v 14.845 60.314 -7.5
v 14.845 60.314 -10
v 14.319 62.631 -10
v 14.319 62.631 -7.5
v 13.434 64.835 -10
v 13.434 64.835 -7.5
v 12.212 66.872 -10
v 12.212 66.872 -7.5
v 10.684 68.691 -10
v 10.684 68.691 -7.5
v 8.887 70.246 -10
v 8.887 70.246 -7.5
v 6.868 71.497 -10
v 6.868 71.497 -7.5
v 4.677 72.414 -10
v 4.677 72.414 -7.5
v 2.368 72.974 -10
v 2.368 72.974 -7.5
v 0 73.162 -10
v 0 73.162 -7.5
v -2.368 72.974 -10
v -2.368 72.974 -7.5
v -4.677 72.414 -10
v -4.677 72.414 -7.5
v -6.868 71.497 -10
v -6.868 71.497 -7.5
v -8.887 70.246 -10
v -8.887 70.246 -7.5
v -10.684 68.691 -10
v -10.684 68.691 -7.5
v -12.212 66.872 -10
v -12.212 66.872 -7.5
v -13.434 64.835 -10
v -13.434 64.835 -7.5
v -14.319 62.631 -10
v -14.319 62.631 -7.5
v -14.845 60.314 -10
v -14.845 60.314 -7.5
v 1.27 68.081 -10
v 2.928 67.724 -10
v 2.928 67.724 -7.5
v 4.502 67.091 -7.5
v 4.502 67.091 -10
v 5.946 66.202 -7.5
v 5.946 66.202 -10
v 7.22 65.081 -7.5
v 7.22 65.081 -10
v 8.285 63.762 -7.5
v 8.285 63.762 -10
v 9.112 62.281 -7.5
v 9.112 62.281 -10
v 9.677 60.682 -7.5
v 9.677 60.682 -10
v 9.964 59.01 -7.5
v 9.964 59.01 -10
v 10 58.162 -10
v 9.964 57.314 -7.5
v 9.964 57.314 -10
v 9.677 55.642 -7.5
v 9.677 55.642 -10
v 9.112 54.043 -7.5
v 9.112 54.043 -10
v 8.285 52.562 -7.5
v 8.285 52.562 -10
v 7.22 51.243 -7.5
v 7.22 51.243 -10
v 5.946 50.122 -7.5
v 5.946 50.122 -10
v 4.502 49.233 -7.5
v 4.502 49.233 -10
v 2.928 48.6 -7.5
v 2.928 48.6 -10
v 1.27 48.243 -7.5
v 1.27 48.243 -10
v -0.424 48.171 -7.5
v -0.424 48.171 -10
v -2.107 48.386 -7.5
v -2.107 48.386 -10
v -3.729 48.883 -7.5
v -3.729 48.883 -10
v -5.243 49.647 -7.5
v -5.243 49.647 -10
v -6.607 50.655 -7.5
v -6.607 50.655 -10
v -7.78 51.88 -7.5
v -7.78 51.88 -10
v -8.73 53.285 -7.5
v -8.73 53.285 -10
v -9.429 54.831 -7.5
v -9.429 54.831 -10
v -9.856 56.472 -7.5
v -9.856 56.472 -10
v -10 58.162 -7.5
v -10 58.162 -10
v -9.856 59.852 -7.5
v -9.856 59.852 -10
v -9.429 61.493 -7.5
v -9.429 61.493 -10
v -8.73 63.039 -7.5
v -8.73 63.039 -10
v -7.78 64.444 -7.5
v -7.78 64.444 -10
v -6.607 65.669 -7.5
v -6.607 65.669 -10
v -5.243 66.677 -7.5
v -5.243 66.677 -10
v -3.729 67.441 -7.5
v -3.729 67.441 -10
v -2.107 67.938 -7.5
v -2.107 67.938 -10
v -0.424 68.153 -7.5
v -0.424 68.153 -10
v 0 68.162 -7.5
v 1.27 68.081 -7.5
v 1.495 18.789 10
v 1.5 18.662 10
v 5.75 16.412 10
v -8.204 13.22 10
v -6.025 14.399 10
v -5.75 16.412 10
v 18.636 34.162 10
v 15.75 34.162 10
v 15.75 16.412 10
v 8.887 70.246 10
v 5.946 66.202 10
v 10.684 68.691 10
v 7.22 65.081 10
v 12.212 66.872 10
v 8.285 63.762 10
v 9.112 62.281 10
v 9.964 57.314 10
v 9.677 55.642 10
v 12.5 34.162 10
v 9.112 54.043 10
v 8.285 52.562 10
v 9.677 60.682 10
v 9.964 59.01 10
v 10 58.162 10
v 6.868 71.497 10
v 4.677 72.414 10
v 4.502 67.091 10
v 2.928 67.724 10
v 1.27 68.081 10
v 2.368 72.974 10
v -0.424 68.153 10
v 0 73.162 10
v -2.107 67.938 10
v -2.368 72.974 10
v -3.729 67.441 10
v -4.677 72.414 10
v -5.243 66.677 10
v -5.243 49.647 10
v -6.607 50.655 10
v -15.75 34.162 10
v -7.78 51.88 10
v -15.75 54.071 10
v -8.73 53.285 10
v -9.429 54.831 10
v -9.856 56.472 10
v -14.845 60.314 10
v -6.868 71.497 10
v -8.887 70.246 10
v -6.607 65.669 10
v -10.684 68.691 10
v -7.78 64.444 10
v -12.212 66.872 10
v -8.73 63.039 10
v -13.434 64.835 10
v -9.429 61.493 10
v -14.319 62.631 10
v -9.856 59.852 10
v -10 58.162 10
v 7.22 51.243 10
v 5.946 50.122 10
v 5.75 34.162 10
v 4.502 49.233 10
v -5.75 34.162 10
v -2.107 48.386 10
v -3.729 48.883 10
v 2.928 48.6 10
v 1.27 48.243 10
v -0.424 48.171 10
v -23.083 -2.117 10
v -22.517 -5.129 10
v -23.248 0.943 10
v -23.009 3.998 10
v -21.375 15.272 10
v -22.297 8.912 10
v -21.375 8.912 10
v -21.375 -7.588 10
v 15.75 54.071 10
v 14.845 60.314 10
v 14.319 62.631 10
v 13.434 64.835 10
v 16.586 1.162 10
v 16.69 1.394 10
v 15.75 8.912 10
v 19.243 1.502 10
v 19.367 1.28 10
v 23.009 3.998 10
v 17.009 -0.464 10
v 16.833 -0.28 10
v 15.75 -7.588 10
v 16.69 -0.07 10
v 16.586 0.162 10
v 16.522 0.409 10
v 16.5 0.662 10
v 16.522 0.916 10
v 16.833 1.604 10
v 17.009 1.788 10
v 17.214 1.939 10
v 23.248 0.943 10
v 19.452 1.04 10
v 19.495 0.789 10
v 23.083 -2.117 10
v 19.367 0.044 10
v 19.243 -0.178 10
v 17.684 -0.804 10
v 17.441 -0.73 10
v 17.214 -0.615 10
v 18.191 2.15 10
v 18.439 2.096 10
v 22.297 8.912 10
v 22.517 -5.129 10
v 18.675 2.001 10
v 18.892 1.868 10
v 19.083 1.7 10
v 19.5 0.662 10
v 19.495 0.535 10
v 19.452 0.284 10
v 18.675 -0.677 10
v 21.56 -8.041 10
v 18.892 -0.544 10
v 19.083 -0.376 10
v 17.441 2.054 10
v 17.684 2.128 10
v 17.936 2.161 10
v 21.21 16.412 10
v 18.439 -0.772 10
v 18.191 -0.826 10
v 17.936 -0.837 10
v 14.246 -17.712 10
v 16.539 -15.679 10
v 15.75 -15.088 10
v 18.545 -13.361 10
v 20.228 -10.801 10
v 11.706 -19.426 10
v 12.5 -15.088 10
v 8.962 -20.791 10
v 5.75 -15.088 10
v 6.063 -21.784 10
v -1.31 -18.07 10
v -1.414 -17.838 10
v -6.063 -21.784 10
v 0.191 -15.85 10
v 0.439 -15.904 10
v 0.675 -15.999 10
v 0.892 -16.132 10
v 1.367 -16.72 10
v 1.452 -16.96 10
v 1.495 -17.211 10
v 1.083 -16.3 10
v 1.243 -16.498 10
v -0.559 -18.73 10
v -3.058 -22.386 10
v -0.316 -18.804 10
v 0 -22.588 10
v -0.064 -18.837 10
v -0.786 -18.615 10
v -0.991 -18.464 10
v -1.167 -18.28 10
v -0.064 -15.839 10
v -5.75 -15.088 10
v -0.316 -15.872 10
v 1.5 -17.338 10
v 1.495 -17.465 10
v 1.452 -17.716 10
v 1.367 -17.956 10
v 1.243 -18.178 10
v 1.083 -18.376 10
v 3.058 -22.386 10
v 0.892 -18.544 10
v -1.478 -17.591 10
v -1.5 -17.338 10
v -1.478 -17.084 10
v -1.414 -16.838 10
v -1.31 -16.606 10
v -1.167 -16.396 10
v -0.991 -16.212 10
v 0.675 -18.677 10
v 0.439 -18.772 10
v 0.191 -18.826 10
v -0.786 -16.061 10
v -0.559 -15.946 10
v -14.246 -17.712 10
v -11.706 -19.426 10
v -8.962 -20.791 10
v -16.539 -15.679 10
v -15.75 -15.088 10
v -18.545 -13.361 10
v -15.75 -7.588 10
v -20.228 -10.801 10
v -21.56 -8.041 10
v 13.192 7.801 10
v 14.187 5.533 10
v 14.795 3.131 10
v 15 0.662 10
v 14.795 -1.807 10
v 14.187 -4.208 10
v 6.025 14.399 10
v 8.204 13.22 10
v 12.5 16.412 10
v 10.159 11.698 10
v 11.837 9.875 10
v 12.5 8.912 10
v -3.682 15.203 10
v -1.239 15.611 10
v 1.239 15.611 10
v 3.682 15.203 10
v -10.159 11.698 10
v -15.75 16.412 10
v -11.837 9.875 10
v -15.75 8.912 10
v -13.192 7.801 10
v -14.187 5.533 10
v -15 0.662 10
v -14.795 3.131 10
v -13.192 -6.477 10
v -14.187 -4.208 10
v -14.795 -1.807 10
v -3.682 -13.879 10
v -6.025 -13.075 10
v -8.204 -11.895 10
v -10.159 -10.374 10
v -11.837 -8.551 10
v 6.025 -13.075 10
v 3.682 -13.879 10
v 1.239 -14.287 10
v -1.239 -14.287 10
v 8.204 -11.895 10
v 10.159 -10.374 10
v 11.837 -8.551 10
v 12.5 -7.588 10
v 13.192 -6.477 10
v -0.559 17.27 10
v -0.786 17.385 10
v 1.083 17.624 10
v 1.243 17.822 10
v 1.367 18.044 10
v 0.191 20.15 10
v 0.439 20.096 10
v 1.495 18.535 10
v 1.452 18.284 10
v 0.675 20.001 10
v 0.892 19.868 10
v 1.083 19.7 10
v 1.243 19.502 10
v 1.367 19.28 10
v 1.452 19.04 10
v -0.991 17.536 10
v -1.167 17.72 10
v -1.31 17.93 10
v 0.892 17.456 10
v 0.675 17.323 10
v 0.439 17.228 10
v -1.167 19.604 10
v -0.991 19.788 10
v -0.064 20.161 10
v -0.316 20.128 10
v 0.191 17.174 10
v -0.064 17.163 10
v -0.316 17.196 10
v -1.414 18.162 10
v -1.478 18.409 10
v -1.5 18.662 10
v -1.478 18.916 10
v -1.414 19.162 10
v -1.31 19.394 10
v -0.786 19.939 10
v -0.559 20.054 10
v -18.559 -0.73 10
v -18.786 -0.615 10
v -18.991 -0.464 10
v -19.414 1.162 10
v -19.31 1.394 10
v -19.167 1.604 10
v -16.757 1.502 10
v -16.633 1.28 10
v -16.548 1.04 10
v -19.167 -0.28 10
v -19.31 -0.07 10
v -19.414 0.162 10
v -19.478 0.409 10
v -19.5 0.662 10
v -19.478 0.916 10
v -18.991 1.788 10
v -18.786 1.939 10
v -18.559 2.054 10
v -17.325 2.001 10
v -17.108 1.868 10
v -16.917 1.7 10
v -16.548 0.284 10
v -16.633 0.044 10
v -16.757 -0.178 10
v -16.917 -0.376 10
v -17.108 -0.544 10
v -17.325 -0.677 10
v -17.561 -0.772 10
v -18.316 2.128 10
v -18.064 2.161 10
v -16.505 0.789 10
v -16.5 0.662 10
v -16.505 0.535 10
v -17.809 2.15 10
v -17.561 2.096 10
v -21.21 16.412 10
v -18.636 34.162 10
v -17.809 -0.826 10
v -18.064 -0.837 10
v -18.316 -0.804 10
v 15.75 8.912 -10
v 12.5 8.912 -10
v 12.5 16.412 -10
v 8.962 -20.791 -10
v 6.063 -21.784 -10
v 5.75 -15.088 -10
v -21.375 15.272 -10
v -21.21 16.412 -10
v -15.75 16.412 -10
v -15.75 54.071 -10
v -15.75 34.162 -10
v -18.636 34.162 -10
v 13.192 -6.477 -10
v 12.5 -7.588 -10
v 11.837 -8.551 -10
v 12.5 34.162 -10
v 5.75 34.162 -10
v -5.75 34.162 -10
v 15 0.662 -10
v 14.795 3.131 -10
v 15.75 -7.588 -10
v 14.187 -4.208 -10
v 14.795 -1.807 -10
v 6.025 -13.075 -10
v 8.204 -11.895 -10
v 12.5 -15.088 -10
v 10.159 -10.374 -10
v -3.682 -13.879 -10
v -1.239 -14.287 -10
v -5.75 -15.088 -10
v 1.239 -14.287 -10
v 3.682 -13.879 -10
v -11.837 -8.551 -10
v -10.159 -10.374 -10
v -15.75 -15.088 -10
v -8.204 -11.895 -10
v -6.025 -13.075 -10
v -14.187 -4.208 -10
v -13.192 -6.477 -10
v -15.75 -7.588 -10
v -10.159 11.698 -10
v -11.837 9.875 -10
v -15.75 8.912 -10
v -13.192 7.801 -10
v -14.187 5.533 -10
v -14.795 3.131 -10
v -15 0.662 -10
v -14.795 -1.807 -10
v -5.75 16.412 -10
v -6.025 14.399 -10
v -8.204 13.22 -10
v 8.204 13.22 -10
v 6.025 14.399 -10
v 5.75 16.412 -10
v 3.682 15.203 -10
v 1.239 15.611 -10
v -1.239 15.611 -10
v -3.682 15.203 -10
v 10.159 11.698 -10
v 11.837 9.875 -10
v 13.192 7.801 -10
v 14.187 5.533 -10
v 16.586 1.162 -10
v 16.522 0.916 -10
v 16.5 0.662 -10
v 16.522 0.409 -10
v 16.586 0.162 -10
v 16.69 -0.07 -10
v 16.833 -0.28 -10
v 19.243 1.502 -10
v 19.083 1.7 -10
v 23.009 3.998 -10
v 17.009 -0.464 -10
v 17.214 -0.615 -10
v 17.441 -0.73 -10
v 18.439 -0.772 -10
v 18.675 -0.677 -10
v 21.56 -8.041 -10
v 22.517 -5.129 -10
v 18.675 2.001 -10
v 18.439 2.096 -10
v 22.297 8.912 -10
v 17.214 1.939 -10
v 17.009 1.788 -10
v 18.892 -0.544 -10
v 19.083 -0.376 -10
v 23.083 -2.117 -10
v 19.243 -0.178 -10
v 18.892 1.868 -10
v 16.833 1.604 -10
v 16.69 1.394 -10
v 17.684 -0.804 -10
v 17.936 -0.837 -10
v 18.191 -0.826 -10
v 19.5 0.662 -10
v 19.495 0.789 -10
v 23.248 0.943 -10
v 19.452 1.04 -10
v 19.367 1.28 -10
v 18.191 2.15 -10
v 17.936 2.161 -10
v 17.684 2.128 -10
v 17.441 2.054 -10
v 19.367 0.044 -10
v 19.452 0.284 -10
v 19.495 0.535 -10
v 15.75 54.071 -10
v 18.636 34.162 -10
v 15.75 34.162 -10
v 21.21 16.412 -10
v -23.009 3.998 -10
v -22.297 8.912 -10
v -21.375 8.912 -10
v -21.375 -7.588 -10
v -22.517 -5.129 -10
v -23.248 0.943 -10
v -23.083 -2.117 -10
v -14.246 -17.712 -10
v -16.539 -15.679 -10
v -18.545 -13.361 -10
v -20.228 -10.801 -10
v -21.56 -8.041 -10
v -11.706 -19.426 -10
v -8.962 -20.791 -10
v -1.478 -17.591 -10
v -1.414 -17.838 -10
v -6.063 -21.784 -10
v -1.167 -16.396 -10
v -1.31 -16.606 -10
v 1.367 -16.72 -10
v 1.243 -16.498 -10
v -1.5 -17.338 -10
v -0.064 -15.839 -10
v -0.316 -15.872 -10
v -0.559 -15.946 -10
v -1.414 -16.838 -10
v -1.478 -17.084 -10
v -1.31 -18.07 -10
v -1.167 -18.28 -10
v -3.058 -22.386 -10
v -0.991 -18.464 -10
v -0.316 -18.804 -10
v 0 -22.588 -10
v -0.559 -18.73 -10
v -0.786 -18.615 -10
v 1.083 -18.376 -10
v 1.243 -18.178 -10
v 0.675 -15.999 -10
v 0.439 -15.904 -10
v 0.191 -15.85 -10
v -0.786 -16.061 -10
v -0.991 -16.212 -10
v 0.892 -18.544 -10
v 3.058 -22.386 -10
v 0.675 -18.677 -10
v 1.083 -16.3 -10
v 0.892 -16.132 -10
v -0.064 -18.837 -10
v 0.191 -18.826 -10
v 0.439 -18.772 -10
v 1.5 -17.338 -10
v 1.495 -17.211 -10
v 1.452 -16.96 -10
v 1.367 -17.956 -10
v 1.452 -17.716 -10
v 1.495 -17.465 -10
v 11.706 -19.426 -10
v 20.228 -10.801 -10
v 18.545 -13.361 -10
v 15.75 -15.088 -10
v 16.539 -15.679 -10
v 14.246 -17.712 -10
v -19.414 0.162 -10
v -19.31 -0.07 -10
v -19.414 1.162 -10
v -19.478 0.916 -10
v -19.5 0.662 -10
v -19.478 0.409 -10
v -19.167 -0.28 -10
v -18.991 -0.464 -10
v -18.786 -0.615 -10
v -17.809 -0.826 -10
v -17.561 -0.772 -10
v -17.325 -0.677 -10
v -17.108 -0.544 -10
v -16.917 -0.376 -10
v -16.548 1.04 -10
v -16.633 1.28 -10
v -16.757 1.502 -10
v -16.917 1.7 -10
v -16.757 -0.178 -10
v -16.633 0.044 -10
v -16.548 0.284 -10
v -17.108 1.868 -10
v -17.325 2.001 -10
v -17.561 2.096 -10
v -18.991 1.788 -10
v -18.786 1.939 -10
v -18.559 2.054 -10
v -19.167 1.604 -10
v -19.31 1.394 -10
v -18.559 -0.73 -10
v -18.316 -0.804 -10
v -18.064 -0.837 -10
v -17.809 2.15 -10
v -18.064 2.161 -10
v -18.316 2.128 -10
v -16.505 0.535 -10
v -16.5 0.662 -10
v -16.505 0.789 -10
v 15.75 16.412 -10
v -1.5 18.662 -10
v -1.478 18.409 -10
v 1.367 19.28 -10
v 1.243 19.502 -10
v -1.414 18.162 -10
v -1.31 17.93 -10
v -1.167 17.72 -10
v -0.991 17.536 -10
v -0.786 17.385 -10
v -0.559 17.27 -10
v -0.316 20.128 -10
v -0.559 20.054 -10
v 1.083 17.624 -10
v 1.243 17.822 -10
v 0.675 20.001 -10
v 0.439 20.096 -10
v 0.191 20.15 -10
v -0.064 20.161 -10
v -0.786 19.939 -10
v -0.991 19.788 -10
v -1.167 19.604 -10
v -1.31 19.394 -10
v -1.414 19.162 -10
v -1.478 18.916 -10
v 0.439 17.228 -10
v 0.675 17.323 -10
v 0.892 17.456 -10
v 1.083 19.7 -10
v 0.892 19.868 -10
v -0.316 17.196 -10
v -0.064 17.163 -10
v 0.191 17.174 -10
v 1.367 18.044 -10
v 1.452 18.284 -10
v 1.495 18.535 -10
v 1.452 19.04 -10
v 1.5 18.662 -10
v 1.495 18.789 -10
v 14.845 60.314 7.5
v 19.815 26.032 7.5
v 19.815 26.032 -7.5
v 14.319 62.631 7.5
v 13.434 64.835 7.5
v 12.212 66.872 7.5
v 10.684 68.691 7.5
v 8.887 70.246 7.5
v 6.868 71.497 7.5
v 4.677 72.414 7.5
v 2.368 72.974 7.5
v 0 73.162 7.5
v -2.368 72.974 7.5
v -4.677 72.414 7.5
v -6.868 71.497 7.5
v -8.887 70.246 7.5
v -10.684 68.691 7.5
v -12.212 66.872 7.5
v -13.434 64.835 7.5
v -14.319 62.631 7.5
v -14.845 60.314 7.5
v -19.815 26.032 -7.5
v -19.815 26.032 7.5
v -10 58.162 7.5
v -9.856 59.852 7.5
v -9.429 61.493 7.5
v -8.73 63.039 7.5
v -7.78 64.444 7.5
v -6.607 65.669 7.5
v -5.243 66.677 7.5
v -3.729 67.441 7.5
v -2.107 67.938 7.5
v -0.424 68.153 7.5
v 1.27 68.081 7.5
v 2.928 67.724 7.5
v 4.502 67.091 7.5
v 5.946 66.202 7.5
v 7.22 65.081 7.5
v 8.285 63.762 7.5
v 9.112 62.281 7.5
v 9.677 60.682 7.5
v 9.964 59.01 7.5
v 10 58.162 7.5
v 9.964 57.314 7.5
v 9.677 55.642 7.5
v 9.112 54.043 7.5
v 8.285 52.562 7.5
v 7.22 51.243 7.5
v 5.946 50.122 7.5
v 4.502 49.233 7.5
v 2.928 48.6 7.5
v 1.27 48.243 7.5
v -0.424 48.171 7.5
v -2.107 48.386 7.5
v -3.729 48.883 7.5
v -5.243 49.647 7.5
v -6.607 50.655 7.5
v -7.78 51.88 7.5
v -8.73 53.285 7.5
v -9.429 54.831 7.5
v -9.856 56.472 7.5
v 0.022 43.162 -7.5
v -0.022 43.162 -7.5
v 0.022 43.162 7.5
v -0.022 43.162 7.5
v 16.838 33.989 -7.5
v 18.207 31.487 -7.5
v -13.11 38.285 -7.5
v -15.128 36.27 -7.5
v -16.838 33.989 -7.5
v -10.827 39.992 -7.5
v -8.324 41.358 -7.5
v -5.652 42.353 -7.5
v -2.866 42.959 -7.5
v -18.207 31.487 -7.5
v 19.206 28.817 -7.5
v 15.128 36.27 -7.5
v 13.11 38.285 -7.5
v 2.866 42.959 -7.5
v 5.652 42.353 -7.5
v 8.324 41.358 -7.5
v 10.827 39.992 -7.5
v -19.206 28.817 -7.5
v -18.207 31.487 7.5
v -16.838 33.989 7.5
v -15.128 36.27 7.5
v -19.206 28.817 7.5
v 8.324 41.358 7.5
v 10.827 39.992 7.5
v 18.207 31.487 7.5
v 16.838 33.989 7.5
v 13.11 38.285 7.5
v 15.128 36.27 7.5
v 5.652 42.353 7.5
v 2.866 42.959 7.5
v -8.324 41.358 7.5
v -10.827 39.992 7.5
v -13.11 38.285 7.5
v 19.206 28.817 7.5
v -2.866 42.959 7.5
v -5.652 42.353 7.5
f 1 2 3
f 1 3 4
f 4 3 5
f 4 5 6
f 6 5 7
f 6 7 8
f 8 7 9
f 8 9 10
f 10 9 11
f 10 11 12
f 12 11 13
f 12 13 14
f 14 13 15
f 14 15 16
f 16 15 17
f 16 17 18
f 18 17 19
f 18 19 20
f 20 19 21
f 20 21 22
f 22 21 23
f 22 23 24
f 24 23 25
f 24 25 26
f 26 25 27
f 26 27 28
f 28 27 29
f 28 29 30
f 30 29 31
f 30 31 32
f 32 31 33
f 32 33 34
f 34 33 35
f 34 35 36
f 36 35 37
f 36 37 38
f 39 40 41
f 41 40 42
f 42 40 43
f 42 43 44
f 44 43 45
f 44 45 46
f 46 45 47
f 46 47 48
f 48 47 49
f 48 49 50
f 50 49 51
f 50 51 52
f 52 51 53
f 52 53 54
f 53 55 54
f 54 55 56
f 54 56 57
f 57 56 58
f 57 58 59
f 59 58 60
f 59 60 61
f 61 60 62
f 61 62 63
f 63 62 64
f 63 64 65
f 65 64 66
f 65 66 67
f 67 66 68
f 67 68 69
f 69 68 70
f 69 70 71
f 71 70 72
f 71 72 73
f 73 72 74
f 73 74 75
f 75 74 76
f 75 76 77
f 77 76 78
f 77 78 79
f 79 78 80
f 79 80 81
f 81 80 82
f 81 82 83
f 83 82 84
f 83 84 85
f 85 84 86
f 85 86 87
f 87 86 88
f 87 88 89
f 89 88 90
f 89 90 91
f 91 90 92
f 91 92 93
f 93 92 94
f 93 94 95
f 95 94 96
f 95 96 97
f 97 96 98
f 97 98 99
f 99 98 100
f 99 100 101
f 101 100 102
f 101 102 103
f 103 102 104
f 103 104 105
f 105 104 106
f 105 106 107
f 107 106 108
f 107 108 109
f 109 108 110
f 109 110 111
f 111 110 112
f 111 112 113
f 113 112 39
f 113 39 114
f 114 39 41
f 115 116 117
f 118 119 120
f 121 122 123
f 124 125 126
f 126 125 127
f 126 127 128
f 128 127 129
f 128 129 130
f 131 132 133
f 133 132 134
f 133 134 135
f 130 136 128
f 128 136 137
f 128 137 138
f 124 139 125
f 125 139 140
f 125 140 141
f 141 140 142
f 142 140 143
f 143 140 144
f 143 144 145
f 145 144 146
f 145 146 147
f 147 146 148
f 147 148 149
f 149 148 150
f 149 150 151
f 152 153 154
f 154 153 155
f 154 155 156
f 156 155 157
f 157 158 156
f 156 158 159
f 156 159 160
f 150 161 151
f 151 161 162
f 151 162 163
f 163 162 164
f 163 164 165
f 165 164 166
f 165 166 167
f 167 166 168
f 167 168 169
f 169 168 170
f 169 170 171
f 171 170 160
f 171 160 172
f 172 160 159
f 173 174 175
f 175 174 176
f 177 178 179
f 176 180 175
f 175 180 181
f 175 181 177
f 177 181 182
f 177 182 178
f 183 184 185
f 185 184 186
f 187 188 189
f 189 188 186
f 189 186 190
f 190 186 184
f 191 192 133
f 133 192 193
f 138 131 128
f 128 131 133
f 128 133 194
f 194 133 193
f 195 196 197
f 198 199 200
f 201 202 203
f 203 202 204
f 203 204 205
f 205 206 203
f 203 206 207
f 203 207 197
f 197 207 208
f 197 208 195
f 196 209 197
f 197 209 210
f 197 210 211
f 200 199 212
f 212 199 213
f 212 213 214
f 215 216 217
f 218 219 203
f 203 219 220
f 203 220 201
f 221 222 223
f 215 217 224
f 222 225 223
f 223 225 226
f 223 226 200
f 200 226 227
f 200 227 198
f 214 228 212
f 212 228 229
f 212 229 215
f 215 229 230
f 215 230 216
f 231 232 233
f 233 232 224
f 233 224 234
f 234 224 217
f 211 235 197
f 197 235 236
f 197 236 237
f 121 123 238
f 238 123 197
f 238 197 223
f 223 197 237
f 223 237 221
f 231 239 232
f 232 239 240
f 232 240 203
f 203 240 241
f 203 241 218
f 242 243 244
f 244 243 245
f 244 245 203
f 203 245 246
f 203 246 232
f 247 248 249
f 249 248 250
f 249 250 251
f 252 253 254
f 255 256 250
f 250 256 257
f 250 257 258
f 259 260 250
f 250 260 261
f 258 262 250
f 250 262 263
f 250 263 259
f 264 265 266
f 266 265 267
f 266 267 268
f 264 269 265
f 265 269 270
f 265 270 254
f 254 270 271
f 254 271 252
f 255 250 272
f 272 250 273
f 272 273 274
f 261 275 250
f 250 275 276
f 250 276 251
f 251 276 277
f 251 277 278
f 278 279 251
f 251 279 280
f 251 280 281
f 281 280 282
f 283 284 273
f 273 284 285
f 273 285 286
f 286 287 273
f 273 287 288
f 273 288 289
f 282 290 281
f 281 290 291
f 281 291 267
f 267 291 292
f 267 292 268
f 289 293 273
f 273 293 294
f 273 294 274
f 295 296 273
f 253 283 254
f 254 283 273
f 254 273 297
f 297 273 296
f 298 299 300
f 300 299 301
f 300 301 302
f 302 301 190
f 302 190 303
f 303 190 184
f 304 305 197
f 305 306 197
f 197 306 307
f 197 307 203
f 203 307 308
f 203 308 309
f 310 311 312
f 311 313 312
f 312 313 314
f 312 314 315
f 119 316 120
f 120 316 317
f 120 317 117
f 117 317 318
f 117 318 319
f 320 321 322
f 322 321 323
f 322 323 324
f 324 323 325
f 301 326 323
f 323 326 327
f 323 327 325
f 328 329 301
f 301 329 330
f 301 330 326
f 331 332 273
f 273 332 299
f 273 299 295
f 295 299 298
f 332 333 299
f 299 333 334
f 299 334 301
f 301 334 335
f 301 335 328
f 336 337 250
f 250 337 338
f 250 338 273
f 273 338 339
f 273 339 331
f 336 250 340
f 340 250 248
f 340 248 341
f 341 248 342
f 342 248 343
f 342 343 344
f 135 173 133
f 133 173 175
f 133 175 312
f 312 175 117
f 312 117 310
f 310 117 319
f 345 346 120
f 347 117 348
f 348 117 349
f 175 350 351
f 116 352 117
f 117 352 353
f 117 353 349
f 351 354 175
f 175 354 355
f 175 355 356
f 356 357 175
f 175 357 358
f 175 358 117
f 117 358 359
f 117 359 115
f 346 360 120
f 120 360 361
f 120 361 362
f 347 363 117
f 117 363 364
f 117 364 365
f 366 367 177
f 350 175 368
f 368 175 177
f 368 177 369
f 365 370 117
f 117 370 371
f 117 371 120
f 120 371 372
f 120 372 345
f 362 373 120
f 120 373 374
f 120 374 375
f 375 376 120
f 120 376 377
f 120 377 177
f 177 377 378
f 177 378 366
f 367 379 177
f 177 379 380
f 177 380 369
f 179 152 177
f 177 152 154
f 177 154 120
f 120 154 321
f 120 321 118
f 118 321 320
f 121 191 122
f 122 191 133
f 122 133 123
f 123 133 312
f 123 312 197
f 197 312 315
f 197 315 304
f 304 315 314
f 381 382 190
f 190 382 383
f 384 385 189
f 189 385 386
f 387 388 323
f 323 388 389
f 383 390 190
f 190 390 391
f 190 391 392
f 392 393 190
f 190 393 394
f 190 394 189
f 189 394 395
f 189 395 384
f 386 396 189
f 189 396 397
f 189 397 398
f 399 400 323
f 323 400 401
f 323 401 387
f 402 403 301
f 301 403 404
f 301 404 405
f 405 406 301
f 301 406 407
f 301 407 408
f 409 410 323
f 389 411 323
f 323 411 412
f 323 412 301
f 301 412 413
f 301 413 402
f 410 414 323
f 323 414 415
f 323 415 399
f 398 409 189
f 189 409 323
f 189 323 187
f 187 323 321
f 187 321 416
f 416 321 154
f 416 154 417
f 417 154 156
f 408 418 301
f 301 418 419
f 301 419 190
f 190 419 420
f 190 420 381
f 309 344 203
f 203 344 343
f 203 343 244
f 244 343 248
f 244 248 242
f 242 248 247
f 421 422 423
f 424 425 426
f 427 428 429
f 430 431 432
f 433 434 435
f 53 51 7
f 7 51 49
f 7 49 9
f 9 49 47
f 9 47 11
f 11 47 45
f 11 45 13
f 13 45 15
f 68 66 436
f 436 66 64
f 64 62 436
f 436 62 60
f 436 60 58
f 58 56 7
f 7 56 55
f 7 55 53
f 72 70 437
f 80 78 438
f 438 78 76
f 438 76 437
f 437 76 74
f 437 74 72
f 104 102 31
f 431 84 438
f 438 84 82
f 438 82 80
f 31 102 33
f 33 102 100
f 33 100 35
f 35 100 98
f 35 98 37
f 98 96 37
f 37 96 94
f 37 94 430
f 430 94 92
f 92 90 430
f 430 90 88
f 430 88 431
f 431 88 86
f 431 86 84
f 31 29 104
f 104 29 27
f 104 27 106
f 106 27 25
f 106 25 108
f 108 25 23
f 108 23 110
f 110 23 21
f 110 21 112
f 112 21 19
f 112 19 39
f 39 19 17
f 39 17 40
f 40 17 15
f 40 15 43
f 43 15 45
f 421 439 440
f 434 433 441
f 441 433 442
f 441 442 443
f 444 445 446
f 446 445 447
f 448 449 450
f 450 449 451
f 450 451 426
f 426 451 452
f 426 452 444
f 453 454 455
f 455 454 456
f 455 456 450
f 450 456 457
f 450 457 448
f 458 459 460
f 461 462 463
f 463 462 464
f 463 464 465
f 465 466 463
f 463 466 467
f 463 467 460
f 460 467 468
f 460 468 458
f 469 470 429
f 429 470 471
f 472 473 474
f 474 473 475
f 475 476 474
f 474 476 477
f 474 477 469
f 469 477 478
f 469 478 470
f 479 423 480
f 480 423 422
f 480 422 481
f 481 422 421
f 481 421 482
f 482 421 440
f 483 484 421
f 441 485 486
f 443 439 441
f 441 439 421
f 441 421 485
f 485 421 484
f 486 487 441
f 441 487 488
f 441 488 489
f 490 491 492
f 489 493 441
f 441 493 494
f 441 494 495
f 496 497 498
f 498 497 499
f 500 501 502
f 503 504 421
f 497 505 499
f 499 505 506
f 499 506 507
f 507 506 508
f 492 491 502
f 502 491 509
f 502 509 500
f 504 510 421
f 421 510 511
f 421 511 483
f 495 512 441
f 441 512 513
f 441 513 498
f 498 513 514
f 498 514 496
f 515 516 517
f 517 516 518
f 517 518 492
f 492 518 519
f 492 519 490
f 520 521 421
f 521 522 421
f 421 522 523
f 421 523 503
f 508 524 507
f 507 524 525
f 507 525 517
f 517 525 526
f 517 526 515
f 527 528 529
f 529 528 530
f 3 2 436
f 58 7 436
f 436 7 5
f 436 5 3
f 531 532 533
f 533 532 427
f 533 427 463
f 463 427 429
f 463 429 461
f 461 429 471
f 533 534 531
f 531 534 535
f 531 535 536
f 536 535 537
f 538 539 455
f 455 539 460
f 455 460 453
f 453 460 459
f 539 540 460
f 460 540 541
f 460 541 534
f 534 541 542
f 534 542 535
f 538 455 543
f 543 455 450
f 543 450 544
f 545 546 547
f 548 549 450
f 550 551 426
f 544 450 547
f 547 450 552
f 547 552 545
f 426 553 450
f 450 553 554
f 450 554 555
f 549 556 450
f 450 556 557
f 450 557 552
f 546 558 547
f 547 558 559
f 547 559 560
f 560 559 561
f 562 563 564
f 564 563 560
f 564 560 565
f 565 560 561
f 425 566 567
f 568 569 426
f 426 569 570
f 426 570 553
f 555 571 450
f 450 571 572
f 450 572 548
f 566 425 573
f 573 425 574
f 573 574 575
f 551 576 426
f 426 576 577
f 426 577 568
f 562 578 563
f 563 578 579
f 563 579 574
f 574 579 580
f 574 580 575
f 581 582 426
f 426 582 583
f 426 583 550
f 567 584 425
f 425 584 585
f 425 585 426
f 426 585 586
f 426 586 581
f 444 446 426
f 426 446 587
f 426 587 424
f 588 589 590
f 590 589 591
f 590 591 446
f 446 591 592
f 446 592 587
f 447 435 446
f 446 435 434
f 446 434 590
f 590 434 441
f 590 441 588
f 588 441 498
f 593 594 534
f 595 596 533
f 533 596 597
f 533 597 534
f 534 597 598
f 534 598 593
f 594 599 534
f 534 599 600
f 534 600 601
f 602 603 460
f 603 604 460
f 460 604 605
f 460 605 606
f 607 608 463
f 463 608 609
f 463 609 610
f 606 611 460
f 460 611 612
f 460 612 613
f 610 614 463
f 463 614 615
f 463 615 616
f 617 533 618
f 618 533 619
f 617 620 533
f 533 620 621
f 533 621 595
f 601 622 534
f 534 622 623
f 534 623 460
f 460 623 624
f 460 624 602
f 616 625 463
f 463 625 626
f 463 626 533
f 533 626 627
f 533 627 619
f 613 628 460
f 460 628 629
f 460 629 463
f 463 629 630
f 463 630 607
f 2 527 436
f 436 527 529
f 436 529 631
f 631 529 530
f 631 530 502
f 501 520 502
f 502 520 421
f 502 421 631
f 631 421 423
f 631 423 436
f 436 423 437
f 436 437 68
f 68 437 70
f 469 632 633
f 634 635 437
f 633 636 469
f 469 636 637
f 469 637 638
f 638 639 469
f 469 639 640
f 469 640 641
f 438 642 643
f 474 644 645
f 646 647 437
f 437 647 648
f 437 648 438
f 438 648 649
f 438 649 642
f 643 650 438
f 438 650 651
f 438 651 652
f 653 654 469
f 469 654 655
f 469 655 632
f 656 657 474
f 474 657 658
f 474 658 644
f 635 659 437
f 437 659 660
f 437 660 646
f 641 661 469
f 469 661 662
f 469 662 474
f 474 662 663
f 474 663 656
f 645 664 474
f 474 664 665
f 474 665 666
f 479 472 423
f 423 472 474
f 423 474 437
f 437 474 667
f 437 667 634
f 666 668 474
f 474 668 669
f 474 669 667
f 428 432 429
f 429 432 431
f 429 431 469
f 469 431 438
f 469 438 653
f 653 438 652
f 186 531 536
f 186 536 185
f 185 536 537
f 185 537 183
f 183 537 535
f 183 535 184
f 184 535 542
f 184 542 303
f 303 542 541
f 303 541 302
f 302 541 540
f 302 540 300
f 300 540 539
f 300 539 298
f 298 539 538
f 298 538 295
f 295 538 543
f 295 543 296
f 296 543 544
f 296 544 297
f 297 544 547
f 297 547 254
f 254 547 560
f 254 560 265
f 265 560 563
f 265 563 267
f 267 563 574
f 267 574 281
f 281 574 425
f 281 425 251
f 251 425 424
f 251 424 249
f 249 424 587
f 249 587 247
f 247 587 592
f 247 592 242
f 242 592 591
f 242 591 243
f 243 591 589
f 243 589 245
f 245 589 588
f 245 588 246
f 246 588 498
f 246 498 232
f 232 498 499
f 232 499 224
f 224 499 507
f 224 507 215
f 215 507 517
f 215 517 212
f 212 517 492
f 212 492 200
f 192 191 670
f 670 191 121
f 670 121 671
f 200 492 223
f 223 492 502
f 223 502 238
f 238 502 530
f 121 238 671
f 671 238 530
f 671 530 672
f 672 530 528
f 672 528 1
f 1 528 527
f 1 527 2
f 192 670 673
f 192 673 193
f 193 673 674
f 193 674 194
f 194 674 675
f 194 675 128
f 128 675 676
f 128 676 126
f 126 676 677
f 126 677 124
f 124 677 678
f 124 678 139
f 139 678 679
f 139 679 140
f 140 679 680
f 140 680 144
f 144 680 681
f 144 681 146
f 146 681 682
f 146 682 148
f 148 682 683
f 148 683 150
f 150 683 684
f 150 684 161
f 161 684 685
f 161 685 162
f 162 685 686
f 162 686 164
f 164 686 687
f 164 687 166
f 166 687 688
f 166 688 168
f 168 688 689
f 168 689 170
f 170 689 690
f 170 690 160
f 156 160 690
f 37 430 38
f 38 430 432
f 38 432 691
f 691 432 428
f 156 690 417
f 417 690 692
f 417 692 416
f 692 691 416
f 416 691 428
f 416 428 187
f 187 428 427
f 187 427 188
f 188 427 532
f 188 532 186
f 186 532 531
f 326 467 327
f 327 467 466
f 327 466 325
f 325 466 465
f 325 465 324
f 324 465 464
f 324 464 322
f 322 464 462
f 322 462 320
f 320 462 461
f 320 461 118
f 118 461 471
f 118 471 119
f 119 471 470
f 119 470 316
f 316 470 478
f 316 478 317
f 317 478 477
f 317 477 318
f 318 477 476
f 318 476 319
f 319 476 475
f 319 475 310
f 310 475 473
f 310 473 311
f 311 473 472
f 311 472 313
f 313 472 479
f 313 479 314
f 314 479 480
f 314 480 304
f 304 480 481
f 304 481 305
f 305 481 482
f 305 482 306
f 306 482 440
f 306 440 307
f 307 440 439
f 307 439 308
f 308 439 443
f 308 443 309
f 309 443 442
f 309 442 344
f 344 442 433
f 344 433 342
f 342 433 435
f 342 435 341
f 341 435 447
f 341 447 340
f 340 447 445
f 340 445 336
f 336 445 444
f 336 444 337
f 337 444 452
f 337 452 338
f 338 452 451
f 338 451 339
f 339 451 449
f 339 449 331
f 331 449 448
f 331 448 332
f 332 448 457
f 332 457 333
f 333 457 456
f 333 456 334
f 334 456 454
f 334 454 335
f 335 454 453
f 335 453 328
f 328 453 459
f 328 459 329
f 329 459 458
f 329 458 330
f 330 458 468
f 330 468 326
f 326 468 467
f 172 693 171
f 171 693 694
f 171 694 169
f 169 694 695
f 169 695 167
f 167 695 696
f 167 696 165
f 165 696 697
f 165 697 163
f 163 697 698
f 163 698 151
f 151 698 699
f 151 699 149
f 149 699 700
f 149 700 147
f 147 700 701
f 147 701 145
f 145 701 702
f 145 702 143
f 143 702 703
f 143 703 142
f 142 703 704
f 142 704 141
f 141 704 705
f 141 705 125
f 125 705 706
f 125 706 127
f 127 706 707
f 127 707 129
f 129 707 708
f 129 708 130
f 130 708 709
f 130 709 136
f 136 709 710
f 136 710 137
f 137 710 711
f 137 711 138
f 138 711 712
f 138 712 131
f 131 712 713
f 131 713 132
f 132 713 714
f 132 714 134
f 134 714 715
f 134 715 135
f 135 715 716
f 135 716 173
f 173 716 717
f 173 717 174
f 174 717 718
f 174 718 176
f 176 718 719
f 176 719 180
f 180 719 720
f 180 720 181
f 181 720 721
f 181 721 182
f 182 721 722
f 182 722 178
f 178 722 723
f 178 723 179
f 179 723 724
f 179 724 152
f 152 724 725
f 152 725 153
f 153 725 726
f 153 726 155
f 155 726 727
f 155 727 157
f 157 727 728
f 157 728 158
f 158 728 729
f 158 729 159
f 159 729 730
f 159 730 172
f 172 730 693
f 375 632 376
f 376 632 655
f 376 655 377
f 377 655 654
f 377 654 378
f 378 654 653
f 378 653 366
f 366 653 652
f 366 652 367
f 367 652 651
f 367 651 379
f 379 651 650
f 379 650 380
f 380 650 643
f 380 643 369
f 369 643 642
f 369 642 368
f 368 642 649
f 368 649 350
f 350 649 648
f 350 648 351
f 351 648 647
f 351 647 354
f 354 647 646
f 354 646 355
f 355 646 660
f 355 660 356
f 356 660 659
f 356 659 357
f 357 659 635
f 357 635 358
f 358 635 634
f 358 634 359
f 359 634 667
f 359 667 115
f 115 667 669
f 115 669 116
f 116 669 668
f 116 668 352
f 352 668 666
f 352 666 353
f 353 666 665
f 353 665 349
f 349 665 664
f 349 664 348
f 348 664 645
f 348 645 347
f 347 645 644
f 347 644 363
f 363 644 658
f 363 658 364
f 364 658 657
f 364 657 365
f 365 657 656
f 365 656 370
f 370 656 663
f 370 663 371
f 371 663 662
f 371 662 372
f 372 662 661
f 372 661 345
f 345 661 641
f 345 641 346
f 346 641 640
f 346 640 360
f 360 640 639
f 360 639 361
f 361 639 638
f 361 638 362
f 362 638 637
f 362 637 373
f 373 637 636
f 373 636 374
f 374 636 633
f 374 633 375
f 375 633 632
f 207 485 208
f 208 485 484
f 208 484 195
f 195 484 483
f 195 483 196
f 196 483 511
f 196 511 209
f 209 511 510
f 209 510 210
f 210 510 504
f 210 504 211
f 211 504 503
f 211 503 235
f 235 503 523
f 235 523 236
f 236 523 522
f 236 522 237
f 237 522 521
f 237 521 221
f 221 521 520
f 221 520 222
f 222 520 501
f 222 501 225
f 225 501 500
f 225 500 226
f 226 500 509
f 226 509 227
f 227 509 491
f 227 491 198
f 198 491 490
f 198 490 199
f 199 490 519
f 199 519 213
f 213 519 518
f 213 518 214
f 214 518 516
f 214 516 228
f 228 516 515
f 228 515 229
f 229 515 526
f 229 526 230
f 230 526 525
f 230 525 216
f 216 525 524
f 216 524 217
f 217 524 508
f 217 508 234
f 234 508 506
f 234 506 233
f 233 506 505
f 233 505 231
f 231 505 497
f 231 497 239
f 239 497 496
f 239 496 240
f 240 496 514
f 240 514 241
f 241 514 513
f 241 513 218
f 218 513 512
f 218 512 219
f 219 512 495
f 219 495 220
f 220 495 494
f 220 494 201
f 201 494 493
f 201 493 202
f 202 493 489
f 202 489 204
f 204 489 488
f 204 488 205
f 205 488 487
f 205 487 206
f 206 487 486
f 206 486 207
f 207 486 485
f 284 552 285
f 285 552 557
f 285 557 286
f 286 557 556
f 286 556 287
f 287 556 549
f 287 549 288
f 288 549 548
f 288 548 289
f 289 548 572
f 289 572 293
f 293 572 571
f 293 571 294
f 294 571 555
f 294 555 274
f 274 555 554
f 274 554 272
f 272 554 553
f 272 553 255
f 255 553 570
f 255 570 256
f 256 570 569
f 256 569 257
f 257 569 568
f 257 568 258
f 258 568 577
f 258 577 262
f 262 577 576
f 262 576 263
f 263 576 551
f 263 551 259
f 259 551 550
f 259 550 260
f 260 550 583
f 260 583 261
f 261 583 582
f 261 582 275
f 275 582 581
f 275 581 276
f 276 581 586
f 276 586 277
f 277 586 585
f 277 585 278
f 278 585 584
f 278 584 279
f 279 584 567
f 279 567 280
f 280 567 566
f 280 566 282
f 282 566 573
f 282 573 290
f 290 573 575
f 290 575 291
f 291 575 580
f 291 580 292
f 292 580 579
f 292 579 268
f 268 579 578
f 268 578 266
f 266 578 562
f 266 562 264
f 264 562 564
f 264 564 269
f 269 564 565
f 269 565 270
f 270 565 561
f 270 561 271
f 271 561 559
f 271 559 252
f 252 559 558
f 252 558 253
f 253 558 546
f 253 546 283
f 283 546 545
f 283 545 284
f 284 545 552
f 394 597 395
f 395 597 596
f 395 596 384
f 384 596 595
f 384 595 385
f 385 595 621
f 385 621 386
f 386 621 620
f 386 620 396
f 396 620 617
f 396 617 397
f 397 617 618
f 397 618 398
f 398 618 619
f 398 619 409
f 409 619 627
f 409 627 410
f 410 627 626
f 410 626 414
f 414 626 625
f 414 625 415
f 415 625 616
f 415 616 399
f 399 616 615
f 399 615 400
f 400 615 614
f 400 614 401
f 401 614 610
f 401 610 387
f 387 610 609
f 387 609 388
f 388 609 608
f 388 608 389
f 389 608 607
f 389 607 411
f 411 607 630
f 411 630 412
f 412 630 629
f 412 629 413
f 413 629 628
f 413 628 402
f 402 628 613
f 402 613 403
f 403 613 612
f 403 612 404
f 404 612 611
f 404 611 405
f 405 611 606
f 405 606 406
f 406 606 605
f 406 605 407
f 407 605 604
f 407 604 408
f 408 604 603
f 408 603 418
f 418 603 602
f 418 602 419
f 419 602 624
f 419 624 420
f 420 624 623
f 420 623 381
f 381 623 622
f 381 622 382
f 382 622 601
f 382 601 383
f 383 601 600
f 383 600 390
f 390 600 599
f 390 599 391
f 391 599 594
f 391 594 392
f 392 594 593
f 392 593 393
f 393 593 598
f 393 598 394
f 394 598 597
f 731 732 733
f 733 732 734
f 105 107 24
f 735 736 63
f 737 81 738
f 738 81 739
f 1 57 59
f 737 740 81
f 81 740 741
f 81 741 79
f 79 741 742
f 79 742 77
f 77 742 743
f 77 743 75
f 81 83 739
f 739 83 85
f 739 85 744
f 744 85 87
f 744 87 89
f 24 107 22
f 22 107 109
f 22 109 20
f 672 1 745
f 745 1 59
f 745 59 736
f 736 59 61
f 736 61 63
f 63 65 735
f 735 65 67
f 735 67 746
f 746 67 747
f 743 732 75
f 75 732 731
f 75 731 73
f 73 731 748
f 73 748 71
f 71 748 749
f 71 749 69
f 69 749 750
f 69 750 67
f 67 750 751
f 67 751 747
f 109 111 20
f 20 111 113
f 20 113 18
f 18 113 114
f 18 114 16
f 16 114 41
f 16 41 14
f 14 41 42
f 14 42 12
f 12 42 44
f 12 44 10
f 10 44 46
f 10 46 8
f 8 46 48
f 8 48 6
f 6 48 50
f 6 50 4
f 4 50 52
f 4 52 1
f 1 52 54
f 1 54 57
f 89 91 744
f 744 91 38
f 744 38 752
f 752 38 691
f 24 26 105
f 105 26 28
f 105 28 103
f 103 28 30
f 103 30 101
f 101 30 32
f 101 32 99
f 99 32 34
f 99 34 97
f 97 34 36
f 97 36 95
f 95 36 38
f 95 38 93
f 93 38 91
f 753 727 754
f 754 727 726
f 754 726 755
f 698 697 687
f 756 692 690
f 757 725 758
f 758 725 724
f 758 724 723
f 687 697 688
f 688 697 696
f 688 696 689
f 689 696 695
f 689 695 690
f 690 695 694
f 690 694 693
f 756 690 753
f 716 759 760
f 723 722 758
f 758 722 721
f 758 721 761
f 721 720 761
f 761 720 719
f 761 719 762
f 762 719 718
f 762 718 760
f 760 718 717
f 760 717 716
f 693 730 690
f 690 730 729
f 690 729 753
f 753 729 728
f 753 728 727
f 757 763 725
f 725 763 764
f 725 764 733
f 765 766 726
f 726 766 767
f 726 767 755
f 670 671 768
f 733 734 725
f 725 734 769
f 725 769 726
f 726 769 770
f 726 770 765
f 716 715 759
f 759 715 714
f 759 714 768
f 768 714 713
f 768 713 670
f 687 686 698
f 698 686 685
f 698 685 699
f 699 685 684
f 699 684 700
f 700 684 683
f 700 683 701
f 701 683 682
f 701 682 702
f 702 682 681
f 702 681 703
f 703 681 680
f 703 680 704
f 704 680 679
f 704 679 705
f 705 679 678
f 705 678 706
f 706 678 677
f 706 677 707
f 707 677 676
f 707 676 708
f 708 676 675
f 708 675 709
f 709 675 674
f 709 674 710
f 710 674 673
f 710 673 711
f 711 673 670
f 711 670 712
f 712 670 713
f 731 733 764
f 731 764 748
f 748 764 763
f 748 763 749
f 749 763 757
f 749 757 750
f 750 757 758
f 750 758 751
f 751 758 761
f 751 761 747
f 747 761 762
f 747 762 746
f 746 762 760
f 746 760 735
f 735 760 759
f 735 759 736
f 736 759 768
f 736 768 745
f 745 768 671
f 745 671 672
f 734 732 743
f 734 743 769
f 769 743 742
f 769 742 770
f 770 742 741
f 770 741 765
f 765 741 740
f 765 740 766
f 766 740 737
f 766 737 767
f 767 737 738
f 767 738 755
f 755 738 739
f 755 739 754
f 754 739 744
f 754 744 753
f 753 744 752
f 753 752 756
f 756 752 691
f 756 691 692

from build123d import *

# Parameters (mm, degrees)
CROQUIS1_R                 = 15
CROQUIS1_R_2               = 1.5
CROQUIS1_R_3               = 10
SALIENTE_EXTRUIR1_DEPTH    = 10
CORTAR_EXTRUIR2_DEPTH      = 24.25
CORTAR_EXTRUIR2_DEPTH_BACK = 24.25
REDONDEO3_R                = 20


with BuildPart() as part:
    # Croquis1 → Saliente-Extruir1 (new body, symmetric)
    with BuildSketch(Plane.XY):
        with BuildLine():
            Line((-23.009443154, 3.997898972), (-14.844802035, 60.31420332))
            ThreePointArc((-14.844802035, 60.31420332), (0, 73.162029407), (14.844802035, 60.31420332))
            Line((14.844802035, 60.31420332), (23.009443154, 3.997898972))
            ThreePointArc((23.009443154, 3.997898972), (0, -22.587970593), (-23.009443154, 3.997898972))
        make_face()
        with Locations((0, 0.662029407)):
            Circle(CROQUIS1_R, mode=Mode.SUBTRACT)
        with Locations((0, 18.662029407)):
            Circle(CROQUIS1_R_2, mode=Mode.SUBTRACT)
        with Locations((18, 0.662029407)):
            Circle(CROQUIS1_R_2, mode=Mode.SUBTRACT)
        with Locations((0, -17.337970593)):
            Circle(CROQUIS1_R_2, mode=Mode.SUBTRACT)
        with Locations((-18, 0.662029407)):
            Circle(CROQUIS1_R_2, mode=Mode.SUBTRACT)
        with Locations((0, 58.162029407)):
            Circle(CROQUIS1_R_3, mode=Mode.SUBTRACT)
    extrude(amount=SALIENTE_EXTRUIR1_DEPTH, both=True)

    # Croquis3 → Cortar-Extruir2 (cut, two sides)
    with BuildSketch(Plane(origin=(0, 0, 0), x_dir=(0, 0, -1), z_dir=(1, 0, 0))) as cortar_extruir2_sk:
        Polygon((0, 73.162029407), (7.5, 73.162029407), (7.5, 43.162029407), (-7.5, 43.162029407), (-7.5, 73.162029407), align=None)
    extrude(amount=CORTAR_EXTRUIR2_DEPTH, mode=Mode.SUBTRACT)
    extrude(cortar_extruir2_sk.sketch, amount=-CORTAR_EXTRUIR2_DEPTH_BACK, mode=Mode.SUBTRACT)

    # Redondeo3
    redondeo3_edges = [part.edges().sort_by_distance(p)[0] for p in [
        (-17.331494761, 43.162029407, 0),
        (17.331494761, 43.162029407, 0),
    ]]
    fillet(redondeo3_edges, radius=REDONDEO3_R)


solid = part.part
